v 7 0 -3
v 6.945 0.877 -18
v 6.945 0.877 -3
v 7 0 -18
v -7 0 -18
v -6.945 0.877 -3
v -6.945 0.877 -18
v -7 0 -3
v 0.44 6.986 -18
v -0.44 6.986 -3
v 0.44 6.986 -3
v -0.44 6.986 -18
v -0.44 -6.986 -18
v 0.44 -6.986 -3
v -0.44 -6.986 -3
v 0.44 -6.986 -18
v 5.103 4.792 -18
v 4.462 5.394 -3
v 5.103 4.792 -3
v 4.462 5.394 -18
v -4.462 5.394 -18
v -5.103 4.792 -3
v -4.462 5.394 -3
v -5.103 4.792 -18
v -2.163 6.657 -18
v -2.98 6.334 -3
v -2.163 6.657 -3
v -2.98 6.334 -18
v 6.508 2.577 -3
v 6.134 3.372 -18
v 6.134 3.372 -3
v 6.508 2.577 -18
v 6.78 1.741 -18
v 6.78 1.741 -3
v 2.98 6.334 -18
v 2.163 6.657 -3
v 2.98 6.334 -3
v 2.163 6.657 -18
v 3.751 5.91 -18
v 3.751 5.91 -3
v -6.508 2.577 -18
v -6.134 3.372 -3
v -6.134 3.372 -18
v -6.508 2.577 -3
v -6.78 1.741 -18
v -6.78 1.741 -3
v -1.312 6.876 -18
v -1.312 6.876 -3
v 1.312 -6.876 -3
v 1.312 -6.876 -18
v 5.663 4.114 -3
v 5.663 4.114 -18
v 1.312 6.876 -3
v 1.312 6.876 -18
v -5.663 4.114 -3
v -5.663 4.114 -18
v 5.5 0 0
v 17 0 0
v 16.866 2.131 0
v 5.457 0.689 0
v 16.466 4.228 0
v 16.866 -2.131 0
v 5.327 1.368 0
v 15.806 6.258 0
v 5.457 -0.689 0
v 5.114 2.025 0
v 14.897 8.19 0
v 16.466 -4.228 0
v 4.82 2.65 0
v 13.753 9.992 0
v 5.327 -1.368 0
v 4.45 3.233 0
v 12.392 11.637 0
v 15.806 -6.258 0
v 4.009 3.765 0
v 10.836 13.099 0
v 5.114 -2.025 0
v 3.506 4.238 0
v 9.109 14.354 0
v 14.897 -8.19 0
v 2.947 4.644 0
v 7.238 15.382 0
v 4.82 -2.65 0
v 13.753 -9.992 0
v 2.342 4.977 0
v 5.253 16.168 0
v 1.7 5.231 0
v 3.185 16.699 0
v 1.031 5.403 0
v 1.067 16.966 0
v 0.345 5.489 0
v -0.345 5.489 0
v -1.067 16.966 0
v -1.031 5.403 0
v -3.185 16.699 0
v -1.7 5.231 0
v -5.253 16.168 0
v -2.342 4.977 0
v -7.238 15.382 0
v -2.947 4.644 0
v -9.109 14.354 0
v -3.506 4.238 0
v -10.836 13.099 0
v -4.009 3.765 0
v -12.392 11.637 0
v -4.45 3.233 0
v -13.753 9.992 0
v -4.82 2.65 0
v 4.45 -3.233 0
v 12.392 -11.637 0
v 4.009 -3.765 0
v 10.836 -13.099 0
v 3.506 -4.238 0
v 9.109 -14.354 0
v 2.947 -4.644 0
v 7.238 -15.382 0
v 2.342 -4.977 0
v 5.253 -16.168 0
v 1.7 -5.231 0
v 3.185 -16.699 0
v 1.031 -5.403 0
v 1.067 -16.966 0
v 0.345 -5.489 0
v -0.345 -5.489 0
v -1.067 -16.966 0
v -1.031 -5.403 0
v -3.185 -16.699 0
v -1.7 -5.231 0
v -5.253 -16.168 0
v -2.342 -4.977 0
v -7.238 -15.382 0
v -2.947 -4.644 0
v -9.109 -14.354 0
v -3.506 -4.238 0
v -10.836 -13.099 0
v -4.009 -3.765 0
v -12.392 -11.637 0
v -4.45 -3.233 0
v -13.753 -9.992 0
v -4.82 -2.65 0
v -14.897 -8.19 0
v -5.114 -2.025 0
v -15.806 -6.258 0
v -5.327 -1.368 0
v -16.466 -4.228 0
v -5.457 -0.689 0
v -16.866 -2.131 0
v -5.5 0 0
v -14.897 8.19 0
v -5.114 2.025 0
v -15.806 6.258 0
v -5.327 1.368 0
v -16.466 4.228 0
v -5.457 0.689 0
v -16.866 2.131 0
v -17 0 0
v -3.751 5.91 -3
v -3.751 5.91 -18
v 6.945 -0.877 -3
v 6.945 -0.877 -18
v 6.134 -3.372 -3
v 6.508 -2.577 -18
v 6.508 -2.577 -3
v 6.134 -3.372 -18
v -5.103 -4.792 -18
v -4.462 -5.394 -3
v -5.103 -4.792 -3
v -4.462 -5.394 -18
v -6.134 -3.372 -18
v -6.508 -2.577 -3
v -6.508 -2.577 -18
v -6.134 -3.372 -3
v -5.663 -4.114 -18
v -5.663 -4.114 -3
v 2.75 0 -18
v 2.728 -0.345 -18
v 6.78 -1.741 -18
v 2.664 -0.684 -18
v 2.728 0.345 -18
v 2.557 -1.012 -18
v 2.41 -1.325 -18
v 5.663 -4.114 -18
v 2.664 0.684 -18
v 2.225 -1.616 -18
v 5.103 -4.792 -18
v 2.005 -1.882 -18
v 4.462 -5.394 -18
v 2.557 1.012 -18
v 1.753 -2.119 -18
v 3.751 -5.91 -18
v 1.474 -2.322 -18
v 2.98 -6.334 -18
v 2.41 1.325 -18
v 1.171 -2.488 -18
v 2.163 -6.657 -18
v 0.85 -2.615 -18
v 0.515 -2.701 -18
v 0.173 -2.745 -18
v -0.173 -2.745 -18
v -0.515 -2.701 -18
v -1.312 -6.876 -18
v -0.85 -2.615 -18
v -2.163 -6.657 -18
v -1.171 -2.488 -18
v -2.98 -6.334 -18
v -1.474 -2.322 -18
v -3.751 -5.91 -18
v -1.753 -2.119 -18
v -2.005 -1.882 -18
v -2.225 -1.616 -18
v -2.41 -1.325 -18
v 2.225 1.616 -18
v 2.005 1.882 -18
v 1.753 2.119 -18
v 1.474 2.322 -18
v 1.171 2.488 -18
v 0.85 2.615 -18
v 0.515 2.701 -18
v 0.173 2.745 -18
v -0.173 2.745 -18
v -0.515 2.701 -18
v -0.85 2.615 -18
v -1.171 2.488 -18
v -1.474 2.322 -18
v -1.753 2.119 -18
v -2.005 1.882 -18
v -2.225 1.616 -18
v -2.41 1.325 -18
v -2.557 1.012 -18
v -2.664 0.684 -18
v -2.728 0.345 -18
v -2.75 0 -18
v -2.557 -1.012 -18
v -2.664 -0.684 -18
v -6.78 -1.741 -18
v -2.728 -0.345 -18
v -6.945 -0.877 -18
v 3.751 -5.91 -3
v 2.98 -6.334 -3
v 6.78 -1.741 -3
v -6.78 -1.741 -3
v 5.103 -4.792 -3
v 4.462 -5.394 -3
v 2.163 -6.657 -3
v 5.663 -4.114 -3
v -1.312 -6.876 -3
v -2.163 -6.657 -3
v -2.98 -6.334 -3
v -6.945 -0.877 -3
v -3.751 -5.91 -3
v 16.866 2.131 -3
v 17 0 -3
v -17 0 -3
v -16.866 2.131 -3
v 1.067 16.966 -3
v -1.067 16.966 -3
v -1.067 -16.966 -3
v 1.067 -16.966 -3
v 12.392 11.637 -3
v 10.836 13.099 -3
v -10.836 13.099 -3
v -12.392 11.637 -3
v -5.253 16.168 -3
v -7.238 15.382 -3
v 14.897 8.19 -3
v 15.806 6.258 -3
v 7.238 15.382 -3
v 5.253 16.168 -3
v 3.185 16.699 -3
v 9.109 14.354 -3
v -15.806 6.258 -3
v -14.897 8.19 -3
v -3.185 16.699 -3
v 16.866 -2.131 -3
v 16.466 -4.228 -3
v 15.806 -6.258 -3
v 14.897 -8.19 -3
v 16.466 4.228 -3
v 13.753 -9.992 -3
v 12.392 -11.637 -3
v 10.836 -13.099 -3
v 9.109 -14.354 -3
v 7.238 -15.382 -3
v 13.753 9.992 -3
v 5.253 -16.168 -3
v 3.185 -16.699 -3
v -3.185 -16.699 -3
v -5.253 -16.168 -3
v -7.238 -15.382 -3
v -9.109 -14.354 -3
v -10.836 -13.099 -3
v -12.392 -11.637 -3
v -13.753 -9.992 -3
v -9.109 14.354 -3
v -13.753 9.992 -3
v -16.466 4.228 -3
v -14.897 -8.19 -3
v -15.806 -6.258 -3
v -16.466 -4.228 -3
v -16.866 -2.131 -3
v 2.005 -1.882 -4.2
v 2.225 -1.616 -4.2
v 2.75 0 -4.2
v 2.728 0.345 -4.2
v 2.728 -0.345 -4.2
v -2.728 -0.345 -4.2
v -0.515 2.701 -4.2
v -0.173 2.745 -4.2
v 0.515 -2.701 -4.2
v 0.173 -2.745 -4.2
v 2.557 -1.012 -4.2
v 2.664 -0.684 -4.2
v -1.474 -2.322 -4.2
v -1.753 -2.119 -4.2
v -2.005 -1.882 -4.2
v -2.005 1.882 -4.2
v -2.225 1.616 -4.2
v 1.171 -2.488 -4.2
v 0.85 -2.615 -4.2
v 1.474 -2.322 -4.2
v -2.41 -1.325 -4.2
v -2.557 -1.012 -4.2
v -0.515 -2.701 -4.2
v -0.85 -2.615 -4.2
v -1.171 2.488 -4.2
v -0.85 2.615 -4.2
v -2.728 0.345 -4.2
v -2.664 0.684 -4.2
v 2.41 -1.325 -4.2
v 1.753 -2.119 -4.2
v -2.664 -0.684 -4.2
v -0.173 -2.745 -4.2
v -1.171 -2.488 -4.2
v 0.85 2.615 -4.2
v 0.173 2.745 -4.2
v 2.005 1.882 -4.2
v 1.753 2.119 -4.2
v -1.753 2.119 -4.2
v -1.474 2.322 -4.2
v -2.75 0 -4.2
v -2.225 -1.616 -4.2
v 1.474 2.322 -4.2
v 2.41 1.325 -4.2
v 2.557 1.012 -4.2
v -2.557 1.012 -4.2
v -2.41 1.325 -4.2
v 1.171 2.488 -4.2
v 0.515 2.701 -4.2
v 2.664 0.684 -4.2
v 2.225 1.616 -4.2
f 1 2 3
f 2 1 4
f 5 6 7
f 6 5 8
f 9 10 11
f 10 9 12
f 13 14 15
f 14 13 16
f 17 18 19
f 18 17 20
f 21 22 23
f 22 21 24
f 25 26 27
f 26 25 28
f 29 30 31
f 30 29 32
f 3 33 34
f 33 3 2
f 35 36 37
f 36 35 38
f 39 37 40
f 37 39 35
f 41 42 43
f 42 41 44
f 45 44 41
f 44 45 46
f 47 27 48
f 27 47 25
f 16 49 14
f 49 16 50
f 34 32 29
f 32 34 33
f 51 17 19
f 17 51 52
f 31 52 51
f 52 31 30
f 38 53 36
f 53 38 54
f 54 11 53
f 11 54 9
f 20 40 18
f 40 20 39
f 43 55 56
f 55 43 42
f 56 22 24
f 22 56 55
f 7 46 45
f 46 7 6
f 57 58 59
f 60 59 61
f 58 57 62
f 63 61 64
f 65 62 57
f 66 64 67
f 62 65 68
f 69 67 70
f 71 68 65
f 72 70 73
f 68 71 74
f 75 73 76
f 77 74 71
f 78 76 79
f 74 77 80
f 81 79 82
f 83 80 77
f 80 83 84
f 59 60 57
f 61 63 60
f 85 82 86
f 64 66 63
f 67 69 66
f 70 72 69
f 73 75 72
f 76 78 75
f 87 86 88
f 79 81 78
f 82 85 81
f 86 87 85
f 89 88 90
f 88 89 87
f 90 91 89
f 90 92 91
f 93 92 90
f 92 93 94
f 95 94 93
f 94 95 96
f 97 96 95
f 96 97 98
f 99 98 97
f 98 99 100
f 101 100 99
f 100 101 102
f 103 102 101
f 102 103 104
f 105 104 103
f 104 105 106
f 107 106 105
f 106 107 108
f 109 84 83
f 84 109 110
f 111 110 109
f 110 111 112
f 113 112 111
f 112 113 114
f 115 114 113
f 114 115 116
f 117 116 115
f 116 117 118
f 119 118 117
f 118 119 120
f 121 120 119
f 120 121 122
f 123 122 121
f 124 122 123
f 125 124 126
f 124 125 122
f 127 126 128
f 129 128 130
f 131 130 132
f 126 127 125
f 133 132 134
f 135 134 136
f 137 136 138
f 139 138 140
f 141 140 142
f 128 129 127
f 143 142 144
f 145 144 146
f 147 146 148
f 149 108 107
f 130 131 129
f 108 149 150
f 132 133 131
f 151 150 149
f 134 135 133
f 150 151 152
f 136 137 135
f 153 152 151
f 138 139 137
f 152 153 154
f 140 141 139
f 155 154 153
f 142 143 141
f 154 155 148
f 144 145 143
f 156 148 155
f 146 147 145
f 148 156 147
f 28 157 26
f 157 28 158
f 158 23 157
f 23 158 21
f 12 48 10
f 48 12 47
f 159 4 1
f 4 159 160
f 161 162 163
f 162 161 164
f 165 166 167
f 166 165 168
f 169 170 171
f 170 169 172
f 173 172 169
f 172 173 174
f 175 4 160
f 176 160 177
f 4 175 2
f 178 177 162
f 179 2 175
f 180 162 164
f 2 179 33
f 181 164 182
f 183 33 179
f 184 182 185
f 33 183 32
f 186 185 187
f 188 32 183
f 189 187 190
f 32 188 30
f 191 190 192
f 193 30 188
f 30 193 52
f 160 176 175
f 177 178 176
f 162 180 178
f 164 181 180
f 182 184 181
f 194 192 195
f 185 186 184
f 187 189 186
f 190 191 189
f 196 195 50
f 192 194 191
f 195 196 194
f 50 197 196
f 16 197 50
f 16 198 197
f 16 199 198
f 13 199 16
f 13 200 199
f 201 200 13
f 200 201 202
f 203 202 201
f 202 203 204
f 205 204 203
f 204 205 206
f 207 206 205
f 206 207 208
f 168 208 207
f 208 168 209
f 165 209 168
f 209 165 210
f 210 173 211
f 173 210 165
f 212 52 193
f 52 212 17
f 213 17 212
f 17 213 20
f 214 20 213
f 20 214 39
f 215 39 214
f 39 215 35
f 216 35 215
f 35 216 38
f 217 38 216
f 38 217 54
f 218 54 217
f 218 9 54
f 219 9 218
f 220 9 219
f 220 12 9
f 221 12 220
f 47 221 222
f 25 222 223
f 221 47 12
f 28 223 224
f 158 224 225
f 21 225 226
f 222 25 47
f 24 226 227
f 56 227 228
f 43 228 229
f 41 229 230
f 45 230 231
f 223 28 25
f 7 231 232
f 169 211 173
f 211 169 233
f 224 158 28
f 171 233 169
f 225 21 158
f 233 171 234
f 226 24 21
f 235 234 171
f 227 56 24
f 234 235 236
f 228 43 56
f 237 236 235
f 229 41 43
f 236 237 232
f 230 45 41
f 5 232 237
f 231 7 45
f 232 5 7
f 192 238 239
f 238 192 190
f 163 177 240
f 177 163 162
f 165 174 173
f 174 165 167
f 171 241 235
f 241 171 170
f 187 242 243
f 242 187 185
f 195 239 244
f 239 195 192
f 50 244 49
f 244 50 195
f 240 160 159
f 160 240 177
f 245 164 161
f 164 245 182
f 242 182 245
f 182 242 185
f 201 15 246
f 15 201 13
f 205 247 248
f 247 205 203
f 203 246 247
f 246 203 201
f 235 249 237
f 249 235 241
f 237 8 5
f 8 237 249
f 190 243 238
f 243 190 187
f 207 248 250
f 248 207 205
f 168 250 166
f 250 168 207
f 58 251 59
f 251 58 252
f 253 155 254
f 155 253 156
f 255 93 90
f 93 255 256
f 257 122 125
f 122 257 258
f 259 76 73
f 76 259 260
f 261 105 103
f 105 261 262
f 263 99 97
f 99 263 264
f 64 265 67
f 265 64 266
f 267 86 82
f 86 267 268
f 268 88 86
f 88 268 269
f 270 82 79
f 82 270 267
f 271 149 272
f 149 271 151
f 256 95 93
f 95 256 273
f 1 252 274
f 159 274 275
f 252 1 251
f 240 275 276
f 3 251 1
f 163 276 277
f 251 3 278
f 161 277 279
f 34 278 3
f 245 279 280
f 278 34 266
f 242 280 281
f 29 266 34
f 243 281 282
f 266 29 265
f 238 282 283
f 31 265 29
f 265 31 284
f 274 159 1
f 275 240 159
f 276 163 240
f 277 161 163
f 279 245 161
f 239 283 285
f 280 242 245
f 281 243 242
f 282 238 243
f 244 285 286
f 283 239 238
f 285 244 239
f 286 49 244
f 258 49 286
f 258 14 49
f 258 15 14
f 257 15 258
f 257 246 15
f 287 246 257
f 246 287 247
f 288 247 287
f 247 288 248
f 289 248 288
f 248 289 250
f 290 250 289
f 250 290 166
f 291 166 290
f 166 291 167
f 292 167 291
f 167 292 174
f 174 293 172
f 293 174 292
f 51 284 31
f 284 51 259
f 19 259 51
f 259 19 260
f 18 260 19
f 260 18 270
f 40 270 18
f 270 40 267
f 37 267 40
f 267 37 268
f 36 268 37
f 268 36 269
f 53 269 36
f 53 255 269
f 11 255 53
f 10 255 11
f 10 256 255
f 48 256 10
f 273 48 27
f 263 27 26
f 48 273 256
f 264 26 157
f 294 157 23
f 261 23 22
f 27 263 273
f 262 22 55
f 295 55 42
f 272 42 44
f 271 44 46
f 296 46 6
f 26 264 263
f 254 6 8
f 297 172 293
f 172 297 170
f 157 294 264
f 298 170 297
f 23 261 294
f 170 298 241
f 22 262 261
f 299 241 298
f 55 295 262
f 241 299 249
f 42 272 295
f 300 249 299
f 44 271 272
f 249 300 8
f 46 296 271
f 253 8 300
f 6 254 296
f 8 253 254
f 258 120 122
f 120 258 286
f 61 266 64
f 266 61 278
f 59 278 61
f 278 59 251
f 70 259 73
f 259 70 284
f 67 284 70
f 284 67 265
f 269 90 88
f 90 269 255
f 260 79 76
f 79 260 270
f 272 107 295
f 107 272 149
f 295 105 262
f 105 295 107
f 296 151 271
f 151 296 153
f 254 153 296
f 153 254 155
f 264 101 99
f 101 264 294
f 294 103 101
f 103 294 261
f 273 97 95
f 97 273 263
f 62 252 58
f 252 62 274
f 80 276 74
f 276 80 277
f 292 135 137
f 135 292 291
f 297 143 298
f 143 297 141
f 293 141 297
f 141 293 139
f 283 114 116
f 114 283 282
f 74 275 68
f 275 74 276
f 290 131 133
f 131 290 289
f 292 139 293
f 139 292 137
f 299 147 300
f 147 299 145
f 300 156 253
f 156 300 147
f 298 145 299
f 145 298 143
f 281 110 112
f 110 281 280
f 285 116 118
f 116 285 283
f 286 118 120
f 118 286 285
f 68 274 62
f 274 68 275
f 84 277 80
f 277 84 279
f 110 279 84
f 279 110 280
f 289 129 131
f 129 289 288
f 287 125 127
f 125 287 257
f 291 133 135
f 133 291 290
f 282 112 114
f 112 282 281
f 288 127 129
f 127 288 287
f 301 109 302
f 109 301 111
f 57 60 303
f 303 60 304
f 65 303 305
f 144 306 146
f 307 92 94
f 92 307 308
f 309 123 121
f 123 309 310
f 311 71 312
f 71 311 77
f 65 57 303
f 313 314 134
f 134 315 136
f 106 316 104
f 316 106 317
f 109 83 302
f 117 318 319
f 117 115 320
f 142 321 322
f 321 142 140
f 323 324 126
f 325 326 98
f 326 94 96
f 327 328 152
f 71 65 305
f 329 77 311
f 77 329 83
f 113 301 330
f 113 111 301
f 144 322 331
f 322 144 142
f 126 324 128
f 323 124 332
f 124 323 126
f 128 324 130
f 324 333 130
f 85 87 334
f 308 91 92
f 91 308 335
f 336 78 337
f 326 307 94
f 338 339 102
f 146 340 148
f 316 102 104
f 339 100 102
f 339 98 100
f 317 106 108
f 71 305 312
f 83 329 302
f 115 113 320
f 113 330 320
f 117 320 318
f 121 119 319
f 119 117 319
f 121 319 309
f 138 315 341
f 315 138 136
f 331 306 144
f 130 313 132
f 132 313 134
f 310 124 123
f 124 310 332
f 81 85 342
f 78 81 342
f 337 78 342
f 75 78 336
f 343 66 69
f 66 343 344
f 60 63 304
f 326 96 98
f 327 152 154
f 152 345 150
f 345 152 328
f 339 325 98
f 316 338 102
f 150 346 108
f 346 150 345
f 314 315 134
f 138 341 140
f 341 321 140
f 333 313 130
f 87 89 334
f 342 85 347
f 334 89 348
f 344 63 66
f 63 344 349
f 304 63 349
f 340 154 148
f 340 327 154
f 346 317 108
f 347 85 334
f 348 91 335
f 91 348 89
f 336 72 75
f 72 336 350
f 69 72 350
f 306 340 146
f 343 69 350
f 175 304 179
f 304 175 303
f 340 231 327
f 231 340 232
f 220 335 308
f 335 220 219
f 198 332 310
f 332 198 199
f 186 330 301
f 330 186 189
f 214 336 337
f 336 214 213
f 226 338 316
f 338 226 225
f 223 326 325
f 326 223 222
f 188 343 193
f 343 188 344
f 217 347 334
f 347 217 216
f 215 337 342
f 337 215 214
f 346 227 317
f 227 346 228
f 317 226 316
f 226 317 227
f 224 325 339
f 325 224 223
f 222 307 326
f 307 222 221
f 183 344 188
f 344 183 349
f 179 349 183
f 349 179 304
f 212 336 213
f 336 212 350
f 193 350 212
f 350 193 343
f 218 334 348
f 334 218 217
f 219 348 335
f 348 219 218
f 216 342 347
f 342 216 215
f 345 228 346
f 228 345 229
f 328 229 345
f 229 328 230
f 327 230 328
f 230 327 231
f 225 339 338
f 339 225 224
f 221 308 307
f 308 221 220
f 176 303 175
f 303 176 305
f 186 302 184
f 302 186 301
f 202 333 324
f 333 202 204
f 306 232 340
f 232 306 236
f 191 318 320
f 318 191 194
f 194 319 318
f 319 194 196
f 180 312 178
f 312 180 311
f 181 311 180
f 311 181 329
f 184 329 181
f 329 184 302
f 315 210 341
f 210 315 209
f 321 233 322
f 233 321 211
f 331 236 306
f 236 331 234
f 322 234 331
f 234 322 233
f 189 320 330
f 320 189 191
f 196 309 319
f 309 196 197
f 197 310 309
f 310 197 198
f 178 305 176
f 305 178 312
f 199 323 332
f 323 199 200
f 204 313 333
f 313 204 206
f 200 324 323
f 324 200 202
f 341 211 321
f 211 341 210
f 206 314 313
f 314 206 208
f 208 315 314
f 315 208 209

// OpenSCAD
$fn = 50;


difference() {
	union() {
		translate(v = [0, 0, -18.0000000000]) {
			cylinder(h = 18, r = 7.0000000000);
		}
		translate(v = [0, 0, -3.0000000000]) {
			cylinder(h = 3, r = 17.0000000000);
		}
	}
	union() {
		translate(v = [0, 0, 0]) {
			rotate(a = [0, 0, 0]) {
				difference() {
					union() {
						#translate(v = [0, 0, -18.0000000000]) {
							cylinder(h = 18, r = 2.2500000000);
						}
						#translate(v = [0, 0, -4.2000000000]) {
							cylinder(h = 4.2000000000, r1 = 2.7500000000, r2 = 5.5000000000);
						}
						#translate(v = [0, 0, -18.0000000000]) {
							cylinder(h = 18, r = 2.7500000000);
						}
						#translate(v = [0, 0, -18.0000000000]) {
							cylinder(h = 18, r = 2.2500000000);
						}
					}
					union();
				}
			}
		}
	}
}
